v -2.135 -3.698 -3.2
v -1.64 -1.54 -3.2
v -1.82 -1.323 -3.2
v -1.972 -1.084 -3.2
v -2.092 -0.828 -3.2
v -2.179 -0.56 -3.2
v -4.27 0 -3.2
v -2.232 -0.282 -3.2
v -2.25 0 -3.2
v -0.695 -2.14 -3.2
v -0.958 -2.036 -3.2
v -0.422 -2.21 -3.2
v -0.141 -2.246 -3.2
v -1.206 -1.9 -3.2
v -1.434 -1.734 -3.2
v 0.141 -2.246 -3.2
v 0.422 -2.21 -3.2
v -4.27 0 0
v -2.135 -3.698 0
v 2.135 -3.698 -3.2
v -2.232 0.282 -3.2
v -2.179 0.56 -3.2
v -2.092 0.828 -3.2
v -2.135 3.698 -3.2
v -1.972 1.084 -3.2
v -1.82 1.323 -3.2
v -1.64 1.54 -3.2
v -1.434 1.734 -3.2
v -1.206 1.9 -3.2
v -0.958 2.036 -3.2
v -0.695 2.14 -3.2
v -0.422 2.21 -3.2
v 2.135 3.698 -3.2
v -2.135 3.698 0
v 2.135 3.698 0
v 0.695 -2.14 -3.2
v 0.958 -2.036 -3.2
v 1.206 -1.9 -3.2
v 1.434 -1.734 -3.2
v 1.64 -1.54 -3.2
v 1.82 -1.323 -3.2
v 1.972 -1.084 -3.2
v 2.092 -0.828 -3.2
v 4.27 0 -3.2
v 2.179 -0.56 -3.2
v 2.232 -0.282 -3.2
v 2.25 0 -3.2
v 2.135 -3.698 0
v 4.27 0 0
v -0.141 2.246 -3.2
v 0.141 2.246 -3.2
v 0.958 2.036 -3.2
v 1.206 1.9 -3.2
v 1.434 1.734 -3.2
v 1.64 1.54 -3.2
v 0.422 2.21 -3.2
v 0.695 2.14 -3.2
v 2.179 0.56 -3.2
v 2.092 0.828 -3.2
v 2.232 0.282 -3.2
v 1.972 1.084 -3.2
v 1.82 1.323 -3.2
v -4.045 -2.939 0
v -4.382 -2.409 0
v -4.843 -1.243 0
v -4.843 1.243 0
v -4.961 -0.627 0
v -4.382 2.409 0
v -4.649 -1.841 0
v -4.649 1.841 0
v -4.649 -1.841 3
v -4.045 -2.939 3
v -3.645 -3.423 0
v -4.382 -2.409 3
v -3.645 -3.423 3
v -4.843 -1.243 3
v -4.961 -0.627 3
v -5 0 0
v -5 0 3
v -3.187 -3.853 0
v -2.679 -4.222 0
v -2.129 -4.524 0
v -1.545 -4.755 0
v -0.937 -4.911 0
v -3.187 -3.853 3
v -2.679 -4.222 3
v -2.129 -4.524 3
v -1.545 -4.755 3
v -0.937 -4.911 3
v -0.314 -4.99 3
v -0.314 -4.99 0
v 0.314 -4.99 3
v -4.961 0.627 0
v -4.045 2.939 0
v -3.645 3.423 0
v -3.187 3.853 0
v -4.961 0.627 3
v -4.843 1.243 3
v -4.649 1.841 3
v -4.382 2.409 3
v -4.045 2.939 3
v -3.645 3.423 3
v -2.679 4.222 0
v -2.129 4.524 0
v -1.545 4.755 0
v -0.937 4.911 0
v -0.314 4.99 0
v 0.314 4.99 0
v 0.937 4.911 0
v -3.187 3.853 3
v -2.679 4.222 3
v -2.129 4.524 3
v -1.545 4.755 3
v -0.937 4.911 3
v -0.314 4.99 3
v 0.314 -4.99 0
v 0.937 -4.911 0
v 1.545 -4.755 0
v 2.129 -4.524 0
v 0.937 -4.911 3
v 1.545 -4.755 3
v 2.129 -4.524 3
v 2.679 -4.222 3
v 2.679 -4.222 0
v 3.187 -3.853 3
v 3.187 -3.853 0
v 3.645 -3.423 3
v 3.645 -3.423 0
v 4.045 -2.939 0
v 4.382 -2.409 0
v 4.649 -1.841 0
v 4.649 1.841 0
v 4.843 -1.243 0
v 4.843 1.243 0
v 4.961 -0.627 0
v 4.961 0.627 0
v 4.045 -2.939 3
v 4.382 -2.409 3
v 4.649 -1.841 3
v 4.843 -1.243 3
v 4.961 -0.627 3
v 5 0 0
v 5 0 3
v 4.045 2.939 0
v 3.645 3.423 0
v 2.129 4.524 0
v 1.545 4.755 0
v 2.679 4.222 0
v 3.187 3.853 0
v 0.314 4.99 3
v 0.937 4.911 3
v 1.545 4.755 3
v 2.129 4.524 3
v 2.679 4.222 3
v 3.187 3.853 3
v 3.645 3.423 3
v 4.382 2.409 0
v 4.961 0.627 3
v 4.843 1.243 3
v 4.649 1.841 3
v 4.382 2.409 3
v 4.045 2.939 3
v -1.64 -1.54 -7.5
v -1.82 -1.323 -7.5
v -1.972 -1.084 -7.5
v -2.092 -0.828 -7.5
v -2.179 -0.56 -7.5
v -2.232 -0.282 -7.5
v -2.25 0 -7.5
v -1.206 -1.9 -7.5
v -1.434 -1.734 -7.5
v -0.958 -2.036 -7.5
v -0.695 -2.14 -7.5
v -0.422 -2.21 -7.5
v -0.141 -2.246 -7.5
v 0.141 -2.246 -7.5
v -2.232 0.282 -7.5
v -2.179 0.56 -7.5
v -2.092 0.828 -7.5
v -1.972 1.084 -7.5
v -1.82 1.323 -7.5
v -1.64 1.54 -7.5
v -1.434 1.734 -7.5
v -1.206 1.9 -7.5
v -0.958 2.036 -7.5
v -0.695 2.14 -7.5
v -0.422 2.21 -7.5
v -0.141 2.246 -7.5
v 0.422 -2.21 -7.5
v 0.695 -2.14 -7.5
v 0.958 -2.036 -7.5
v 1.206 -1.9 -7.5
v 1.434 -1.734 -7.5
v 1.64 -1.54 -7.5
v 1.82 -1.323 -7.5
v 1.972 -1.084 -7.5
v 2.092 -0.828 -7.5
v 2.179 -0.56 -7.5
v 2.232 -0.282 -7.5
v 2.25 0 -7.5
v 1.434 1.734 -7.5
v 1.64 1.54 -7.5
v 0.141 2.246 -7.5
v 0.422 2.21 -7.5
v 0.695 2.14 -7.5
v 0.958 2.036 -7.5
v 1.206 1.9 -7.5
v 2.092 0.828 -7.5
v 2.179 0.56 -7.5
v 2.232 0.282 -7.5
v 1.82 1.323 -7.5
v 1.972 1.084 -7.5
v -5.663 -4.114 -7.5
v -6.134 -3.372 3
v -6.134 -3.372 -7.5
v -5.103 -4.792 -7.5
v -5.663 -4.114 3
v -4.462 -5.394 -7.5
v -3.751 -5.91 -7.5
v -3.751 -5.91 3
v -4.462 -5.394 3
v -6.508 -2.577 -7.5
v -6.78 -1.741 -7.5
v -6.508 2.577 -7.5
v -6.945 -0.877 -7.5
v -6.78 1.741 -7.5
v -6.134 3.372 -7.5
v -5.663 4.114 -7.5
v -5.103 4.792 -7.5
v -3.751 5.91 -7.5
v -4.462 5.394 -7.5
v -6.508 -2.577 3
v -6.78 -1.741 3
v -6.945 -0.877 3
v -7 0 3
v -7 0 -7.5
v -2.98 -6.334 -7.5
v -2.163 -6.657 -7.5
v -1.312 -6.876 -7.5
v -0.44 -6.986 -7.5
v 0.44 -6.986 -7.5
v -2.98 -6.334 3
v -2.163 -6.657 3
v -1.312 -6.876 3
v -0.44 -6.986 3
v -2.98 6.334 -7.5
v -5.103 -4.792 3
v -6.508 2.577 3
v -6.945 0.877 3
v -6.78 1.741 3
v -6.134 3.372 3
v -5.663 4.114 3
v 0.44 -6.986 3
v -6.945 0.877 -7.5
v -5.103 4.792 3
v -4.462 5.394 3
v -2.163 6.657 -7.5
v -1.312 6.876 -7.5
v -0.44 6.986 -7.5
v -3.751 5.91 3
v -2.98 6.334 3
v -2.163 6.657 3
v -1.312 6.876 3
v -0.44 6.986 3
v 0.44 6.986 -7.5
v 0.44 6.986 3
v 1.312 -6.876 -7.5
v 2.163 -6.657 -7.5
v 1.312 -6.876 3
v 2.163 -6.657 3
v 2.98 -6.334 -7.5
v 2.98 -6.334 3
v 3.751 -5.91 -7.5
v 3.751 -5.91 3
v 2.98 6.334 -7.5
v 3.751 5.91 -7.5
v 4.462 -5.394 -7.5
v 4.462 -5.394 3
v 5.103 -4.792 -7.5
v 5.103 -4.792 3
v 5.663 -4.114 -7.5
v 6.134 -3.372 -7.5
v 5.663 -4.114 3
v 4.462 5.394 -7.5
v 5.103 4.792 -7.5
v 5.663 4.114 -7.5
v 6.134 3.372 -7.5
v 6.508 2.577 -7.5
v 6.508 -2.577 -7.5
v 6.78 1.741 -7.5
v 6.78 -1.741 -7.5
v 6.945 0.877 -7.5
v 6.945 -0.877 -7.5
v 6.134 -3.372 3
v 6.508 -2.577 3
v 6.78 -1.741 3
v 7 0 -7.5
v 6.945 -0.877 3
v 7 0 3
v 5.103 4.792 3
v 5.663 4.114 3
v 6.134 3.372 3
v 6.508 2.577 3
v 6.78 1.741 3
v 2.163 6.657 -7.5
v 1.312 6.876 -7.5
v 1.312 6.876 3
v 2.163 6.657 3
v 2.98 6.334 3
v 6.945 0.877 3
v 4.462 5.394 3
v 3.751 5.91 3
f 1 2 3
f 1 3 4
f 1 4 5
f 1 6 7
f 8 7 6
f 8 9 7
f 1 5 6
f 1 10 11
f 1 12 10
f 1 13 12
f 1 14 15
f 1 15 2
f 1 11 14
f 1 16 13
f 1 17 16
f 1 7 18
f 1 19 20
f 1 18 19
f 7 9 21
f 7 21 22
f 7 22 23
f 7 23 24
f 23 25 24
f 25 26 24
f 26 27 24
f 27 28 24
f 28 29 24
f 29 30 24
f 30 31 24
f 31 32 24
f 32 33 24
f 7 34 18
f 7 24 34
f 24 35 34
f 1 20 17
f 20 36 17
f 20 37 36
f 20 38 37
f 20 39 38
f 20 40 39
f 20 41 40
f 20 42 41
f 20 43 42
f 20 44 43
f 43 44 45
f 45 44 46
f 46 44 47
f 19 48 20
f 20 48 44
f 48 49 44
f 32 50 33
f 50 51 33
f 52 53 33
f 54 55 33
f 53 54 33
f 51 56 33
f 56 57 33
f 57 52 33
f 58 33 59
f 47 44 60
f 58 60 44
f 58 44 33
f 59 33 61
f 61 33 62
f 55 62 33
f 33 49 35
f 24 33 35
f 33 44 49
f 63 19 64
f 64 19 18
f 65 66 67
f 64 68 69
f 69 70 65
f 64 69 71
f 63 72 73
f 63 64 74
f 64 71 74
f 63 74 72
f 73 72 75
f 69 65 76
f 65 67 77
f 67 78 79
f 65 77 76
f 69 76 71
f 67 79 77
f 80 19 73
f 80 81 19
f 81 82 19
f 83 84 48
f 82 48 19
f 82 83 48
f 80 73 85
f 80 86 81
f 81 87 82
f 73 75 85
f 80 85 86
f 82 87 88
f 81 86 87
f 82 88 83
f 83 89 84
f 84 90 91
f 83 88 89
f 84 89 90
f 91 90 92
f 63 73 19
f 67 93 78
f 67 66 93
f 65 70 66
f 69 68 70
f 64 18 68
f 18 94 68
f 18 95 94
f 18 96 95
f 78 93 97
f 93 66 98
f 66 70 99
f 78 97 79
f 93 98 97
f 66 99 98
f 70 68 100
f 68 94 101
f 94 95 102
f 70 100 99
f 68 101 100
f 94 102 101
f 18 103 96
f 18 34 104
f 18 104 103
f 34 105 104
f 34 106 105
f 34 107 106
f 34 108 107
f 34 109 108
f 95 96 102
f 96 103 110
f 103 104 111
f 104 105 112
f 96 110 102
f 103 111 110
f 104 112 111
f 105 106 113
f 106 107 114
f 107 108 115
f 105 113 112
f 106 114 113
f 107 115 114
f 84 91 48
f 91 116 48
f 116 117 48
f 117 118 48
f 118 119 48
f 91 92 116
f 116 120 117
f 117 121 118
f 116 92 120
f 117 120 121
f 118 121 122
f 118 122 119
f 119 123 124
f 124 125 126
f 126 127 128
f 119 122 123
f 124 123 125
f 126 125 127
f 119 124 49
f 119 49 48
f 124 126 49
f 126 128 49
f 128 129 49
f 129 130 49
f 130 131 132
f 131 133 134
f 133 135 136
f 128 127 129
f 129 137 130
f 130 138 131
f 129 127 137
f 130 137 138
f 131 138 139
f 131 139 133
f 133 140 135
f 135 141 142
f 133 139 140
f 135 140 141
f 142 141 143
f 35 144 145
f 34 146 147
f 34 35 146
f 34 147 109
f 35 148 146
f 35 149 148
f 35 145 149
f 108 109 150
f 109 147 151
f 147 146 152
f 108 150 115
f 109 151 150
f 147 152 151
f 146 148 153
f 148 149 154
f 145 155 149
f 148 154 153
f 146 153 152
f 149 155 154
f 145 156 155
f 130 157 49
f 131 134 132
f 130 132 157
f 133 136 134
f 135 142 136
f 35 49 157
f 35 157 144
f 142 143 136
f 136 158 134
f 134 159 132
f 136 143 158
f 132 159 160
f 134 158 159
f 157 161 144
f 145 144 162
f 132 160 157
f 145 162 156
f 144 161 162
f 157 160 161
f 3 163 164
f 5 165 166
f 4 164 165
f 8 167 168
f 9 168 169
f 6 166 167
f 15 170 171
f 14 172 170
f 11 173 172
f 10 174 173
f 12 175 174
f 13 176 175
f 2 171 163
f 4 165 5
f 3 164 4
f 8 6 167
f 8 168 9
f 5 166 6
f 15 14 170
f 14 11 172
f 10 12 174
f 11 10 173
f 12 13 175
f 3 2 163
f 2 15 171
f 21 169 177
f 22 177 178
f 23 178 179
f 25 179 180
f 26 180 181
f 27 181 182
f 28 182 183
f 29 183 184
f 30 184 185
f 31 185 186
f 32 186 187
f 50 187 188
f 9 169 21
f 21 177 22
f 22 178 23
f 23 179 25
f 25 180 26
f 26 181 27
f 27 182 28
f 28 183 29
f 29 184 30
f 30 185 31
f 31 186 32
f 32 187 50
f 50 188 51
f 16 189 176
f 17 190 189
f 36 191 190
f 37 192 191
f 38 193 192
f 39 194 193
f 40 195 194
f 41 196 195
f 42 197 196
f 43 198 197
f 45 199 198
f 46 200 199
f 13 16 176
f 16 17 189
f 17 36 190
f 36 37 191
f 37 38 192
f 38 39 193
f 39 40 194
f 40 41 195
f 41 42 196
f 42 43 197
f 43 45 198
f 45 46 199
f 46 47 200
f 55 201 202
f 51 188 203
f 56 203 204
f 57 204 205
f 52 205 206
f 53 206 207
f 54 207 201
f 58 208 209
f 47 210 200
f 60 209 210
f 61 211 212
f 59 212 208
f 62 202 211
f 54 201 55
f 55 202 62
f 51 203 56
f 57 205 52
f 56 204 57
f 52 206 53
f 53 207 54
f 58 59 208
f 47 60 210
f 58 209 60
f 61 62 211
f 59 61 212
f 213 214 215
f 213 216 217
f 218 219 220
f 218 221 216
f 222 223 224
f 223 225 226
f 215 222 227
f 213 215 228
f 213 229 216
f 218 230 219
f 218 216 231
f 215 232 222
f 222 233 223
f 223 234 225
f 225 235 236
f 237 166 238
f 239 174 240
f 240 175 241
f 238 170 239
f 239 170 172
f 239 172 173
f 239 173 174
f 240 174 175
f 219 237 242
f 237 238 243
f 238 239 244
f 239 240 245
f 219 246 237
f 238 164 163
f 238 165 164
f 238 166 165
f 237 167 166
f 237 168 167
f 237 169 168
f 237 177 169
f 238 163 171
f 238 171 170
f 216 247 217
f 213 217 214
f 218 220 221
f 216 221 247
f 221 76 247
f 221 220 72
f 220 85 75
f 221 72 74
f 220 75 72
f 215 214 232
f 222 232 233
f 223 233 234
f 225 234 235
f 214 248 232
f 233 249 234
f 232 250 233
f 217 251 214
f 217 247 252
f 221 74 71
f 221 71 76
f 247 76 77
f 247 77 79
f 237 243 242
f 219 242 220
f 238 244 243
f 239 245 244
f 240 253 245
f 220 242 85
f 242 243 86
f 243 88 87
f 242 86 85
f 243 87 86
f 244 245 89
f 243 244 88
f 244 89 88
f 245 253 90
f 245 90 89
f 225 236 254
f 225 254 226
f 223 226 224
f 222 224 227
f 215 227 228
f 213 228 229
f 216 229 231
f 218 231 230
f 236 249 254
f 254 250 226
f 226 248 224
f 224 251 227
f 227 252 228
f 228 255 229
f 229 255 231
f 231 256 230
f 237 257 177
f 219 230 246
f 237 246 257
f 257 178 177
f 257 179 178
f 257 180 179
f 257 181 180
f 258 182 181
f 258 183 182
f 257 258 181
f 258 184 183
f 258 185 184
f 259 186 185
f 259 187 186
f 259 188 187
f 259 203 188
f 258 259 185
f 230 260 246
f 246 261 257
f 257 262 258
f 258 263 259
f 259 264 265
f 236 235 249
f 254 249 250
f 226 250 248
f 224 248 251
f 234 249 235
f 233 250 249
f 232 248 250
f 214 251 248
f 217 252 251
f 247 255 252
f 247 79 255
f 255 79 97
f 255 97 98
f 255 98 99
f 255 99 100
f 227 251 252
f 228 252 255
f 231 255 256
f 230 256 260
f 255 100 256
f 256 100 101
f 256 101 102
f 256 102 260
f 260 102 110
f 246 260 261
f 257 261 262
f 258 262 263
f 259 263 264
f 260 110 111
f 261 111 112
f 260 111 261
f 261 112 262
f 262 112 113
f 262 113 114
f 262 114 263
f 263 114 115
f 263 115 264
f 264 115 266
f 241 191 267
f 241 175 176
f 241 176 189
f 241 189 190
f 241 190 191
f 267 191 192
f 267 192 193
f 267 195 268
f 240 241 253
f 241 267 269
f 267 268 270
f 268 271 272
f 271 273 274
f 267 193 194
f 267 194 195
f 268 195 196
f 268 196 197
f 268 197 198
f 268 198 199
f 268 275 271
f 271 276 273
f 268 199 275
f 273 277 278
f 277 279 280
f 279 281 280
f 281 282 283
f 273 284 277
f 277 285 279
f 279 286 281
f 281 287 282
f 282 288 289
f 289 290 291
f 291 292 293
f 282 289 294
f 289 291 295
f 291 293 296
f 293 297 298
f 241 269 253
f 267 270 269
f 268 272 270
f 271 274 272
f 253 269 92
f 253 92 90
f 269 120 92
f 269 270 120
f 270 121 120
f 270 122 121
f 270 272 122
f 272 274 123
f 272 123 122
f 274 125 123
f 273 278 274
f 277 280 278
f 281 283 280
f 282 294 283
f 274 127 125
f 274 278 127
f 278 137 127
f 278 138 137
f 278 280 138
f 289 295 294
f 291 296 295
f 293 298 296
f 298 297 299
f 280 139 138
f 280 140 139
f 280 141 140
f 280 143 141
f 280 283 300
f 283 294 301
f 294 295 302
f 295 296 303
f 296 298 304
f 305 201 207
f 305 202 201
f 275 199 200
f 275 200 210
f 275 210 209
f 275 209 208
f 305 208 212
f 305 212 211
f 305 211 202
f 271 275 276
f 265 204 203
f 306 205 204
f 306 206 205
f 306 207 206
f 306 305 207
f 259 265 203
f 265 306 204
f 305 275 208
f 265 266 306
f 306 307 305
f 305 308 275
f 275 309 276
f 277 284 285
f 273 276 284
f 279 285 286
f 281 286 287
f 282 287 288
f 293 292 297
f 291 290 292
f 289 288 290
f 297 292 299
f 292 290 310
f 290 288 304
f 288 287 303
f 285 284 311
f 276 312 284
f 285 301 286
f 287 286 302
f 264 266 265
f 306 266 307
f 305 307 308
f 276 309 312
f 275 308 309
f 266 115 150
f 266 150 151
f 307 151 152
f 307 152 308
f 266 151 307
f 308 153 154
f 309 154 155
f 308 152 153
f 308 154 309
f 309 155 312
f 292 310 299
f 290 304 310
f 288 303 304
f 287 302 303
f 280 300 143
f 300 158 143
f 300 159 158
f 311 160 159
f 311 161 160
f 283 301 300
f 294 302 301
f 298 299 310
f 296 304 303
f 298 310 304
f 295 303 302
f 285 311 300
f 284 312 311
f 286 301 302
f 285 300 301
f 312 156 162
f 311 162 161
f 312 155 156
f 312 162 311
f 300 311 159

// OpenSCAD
$fn = 50;

difference() {
	union() {
		translate(v = [0, 0, -7.5]) {
			cylinder(h = 10.5, r = 7.0);
		}
	}
	union() {
		translate(v = [0, 0, 0]) {
			rotate(a = [0, 0, 0]) {
				difference() {
					union() {
						translate(v = [0, 0, -3.2]) {
							linear_extrude(height = 3.2) {
								polygon(points = [[4.2698, 0.0], [2.1349000000000005, 3.697755269078796], [-2.134899999999999, 3.6977552690787965], [-4.2698, 5.228996902999369e-16], [-2.134900000000002, -3.6977552690787956], [2.1348999999999974, -3.697755269078798]]);
							}
						}
					}
					union();
				}
			}
		}
		#cylinder(h = 3, r = 5.0);
		#translate(v = [0, 0, -100.0]) {
			cylinder(h = 200, r = 2.25);
		}
	}
}
